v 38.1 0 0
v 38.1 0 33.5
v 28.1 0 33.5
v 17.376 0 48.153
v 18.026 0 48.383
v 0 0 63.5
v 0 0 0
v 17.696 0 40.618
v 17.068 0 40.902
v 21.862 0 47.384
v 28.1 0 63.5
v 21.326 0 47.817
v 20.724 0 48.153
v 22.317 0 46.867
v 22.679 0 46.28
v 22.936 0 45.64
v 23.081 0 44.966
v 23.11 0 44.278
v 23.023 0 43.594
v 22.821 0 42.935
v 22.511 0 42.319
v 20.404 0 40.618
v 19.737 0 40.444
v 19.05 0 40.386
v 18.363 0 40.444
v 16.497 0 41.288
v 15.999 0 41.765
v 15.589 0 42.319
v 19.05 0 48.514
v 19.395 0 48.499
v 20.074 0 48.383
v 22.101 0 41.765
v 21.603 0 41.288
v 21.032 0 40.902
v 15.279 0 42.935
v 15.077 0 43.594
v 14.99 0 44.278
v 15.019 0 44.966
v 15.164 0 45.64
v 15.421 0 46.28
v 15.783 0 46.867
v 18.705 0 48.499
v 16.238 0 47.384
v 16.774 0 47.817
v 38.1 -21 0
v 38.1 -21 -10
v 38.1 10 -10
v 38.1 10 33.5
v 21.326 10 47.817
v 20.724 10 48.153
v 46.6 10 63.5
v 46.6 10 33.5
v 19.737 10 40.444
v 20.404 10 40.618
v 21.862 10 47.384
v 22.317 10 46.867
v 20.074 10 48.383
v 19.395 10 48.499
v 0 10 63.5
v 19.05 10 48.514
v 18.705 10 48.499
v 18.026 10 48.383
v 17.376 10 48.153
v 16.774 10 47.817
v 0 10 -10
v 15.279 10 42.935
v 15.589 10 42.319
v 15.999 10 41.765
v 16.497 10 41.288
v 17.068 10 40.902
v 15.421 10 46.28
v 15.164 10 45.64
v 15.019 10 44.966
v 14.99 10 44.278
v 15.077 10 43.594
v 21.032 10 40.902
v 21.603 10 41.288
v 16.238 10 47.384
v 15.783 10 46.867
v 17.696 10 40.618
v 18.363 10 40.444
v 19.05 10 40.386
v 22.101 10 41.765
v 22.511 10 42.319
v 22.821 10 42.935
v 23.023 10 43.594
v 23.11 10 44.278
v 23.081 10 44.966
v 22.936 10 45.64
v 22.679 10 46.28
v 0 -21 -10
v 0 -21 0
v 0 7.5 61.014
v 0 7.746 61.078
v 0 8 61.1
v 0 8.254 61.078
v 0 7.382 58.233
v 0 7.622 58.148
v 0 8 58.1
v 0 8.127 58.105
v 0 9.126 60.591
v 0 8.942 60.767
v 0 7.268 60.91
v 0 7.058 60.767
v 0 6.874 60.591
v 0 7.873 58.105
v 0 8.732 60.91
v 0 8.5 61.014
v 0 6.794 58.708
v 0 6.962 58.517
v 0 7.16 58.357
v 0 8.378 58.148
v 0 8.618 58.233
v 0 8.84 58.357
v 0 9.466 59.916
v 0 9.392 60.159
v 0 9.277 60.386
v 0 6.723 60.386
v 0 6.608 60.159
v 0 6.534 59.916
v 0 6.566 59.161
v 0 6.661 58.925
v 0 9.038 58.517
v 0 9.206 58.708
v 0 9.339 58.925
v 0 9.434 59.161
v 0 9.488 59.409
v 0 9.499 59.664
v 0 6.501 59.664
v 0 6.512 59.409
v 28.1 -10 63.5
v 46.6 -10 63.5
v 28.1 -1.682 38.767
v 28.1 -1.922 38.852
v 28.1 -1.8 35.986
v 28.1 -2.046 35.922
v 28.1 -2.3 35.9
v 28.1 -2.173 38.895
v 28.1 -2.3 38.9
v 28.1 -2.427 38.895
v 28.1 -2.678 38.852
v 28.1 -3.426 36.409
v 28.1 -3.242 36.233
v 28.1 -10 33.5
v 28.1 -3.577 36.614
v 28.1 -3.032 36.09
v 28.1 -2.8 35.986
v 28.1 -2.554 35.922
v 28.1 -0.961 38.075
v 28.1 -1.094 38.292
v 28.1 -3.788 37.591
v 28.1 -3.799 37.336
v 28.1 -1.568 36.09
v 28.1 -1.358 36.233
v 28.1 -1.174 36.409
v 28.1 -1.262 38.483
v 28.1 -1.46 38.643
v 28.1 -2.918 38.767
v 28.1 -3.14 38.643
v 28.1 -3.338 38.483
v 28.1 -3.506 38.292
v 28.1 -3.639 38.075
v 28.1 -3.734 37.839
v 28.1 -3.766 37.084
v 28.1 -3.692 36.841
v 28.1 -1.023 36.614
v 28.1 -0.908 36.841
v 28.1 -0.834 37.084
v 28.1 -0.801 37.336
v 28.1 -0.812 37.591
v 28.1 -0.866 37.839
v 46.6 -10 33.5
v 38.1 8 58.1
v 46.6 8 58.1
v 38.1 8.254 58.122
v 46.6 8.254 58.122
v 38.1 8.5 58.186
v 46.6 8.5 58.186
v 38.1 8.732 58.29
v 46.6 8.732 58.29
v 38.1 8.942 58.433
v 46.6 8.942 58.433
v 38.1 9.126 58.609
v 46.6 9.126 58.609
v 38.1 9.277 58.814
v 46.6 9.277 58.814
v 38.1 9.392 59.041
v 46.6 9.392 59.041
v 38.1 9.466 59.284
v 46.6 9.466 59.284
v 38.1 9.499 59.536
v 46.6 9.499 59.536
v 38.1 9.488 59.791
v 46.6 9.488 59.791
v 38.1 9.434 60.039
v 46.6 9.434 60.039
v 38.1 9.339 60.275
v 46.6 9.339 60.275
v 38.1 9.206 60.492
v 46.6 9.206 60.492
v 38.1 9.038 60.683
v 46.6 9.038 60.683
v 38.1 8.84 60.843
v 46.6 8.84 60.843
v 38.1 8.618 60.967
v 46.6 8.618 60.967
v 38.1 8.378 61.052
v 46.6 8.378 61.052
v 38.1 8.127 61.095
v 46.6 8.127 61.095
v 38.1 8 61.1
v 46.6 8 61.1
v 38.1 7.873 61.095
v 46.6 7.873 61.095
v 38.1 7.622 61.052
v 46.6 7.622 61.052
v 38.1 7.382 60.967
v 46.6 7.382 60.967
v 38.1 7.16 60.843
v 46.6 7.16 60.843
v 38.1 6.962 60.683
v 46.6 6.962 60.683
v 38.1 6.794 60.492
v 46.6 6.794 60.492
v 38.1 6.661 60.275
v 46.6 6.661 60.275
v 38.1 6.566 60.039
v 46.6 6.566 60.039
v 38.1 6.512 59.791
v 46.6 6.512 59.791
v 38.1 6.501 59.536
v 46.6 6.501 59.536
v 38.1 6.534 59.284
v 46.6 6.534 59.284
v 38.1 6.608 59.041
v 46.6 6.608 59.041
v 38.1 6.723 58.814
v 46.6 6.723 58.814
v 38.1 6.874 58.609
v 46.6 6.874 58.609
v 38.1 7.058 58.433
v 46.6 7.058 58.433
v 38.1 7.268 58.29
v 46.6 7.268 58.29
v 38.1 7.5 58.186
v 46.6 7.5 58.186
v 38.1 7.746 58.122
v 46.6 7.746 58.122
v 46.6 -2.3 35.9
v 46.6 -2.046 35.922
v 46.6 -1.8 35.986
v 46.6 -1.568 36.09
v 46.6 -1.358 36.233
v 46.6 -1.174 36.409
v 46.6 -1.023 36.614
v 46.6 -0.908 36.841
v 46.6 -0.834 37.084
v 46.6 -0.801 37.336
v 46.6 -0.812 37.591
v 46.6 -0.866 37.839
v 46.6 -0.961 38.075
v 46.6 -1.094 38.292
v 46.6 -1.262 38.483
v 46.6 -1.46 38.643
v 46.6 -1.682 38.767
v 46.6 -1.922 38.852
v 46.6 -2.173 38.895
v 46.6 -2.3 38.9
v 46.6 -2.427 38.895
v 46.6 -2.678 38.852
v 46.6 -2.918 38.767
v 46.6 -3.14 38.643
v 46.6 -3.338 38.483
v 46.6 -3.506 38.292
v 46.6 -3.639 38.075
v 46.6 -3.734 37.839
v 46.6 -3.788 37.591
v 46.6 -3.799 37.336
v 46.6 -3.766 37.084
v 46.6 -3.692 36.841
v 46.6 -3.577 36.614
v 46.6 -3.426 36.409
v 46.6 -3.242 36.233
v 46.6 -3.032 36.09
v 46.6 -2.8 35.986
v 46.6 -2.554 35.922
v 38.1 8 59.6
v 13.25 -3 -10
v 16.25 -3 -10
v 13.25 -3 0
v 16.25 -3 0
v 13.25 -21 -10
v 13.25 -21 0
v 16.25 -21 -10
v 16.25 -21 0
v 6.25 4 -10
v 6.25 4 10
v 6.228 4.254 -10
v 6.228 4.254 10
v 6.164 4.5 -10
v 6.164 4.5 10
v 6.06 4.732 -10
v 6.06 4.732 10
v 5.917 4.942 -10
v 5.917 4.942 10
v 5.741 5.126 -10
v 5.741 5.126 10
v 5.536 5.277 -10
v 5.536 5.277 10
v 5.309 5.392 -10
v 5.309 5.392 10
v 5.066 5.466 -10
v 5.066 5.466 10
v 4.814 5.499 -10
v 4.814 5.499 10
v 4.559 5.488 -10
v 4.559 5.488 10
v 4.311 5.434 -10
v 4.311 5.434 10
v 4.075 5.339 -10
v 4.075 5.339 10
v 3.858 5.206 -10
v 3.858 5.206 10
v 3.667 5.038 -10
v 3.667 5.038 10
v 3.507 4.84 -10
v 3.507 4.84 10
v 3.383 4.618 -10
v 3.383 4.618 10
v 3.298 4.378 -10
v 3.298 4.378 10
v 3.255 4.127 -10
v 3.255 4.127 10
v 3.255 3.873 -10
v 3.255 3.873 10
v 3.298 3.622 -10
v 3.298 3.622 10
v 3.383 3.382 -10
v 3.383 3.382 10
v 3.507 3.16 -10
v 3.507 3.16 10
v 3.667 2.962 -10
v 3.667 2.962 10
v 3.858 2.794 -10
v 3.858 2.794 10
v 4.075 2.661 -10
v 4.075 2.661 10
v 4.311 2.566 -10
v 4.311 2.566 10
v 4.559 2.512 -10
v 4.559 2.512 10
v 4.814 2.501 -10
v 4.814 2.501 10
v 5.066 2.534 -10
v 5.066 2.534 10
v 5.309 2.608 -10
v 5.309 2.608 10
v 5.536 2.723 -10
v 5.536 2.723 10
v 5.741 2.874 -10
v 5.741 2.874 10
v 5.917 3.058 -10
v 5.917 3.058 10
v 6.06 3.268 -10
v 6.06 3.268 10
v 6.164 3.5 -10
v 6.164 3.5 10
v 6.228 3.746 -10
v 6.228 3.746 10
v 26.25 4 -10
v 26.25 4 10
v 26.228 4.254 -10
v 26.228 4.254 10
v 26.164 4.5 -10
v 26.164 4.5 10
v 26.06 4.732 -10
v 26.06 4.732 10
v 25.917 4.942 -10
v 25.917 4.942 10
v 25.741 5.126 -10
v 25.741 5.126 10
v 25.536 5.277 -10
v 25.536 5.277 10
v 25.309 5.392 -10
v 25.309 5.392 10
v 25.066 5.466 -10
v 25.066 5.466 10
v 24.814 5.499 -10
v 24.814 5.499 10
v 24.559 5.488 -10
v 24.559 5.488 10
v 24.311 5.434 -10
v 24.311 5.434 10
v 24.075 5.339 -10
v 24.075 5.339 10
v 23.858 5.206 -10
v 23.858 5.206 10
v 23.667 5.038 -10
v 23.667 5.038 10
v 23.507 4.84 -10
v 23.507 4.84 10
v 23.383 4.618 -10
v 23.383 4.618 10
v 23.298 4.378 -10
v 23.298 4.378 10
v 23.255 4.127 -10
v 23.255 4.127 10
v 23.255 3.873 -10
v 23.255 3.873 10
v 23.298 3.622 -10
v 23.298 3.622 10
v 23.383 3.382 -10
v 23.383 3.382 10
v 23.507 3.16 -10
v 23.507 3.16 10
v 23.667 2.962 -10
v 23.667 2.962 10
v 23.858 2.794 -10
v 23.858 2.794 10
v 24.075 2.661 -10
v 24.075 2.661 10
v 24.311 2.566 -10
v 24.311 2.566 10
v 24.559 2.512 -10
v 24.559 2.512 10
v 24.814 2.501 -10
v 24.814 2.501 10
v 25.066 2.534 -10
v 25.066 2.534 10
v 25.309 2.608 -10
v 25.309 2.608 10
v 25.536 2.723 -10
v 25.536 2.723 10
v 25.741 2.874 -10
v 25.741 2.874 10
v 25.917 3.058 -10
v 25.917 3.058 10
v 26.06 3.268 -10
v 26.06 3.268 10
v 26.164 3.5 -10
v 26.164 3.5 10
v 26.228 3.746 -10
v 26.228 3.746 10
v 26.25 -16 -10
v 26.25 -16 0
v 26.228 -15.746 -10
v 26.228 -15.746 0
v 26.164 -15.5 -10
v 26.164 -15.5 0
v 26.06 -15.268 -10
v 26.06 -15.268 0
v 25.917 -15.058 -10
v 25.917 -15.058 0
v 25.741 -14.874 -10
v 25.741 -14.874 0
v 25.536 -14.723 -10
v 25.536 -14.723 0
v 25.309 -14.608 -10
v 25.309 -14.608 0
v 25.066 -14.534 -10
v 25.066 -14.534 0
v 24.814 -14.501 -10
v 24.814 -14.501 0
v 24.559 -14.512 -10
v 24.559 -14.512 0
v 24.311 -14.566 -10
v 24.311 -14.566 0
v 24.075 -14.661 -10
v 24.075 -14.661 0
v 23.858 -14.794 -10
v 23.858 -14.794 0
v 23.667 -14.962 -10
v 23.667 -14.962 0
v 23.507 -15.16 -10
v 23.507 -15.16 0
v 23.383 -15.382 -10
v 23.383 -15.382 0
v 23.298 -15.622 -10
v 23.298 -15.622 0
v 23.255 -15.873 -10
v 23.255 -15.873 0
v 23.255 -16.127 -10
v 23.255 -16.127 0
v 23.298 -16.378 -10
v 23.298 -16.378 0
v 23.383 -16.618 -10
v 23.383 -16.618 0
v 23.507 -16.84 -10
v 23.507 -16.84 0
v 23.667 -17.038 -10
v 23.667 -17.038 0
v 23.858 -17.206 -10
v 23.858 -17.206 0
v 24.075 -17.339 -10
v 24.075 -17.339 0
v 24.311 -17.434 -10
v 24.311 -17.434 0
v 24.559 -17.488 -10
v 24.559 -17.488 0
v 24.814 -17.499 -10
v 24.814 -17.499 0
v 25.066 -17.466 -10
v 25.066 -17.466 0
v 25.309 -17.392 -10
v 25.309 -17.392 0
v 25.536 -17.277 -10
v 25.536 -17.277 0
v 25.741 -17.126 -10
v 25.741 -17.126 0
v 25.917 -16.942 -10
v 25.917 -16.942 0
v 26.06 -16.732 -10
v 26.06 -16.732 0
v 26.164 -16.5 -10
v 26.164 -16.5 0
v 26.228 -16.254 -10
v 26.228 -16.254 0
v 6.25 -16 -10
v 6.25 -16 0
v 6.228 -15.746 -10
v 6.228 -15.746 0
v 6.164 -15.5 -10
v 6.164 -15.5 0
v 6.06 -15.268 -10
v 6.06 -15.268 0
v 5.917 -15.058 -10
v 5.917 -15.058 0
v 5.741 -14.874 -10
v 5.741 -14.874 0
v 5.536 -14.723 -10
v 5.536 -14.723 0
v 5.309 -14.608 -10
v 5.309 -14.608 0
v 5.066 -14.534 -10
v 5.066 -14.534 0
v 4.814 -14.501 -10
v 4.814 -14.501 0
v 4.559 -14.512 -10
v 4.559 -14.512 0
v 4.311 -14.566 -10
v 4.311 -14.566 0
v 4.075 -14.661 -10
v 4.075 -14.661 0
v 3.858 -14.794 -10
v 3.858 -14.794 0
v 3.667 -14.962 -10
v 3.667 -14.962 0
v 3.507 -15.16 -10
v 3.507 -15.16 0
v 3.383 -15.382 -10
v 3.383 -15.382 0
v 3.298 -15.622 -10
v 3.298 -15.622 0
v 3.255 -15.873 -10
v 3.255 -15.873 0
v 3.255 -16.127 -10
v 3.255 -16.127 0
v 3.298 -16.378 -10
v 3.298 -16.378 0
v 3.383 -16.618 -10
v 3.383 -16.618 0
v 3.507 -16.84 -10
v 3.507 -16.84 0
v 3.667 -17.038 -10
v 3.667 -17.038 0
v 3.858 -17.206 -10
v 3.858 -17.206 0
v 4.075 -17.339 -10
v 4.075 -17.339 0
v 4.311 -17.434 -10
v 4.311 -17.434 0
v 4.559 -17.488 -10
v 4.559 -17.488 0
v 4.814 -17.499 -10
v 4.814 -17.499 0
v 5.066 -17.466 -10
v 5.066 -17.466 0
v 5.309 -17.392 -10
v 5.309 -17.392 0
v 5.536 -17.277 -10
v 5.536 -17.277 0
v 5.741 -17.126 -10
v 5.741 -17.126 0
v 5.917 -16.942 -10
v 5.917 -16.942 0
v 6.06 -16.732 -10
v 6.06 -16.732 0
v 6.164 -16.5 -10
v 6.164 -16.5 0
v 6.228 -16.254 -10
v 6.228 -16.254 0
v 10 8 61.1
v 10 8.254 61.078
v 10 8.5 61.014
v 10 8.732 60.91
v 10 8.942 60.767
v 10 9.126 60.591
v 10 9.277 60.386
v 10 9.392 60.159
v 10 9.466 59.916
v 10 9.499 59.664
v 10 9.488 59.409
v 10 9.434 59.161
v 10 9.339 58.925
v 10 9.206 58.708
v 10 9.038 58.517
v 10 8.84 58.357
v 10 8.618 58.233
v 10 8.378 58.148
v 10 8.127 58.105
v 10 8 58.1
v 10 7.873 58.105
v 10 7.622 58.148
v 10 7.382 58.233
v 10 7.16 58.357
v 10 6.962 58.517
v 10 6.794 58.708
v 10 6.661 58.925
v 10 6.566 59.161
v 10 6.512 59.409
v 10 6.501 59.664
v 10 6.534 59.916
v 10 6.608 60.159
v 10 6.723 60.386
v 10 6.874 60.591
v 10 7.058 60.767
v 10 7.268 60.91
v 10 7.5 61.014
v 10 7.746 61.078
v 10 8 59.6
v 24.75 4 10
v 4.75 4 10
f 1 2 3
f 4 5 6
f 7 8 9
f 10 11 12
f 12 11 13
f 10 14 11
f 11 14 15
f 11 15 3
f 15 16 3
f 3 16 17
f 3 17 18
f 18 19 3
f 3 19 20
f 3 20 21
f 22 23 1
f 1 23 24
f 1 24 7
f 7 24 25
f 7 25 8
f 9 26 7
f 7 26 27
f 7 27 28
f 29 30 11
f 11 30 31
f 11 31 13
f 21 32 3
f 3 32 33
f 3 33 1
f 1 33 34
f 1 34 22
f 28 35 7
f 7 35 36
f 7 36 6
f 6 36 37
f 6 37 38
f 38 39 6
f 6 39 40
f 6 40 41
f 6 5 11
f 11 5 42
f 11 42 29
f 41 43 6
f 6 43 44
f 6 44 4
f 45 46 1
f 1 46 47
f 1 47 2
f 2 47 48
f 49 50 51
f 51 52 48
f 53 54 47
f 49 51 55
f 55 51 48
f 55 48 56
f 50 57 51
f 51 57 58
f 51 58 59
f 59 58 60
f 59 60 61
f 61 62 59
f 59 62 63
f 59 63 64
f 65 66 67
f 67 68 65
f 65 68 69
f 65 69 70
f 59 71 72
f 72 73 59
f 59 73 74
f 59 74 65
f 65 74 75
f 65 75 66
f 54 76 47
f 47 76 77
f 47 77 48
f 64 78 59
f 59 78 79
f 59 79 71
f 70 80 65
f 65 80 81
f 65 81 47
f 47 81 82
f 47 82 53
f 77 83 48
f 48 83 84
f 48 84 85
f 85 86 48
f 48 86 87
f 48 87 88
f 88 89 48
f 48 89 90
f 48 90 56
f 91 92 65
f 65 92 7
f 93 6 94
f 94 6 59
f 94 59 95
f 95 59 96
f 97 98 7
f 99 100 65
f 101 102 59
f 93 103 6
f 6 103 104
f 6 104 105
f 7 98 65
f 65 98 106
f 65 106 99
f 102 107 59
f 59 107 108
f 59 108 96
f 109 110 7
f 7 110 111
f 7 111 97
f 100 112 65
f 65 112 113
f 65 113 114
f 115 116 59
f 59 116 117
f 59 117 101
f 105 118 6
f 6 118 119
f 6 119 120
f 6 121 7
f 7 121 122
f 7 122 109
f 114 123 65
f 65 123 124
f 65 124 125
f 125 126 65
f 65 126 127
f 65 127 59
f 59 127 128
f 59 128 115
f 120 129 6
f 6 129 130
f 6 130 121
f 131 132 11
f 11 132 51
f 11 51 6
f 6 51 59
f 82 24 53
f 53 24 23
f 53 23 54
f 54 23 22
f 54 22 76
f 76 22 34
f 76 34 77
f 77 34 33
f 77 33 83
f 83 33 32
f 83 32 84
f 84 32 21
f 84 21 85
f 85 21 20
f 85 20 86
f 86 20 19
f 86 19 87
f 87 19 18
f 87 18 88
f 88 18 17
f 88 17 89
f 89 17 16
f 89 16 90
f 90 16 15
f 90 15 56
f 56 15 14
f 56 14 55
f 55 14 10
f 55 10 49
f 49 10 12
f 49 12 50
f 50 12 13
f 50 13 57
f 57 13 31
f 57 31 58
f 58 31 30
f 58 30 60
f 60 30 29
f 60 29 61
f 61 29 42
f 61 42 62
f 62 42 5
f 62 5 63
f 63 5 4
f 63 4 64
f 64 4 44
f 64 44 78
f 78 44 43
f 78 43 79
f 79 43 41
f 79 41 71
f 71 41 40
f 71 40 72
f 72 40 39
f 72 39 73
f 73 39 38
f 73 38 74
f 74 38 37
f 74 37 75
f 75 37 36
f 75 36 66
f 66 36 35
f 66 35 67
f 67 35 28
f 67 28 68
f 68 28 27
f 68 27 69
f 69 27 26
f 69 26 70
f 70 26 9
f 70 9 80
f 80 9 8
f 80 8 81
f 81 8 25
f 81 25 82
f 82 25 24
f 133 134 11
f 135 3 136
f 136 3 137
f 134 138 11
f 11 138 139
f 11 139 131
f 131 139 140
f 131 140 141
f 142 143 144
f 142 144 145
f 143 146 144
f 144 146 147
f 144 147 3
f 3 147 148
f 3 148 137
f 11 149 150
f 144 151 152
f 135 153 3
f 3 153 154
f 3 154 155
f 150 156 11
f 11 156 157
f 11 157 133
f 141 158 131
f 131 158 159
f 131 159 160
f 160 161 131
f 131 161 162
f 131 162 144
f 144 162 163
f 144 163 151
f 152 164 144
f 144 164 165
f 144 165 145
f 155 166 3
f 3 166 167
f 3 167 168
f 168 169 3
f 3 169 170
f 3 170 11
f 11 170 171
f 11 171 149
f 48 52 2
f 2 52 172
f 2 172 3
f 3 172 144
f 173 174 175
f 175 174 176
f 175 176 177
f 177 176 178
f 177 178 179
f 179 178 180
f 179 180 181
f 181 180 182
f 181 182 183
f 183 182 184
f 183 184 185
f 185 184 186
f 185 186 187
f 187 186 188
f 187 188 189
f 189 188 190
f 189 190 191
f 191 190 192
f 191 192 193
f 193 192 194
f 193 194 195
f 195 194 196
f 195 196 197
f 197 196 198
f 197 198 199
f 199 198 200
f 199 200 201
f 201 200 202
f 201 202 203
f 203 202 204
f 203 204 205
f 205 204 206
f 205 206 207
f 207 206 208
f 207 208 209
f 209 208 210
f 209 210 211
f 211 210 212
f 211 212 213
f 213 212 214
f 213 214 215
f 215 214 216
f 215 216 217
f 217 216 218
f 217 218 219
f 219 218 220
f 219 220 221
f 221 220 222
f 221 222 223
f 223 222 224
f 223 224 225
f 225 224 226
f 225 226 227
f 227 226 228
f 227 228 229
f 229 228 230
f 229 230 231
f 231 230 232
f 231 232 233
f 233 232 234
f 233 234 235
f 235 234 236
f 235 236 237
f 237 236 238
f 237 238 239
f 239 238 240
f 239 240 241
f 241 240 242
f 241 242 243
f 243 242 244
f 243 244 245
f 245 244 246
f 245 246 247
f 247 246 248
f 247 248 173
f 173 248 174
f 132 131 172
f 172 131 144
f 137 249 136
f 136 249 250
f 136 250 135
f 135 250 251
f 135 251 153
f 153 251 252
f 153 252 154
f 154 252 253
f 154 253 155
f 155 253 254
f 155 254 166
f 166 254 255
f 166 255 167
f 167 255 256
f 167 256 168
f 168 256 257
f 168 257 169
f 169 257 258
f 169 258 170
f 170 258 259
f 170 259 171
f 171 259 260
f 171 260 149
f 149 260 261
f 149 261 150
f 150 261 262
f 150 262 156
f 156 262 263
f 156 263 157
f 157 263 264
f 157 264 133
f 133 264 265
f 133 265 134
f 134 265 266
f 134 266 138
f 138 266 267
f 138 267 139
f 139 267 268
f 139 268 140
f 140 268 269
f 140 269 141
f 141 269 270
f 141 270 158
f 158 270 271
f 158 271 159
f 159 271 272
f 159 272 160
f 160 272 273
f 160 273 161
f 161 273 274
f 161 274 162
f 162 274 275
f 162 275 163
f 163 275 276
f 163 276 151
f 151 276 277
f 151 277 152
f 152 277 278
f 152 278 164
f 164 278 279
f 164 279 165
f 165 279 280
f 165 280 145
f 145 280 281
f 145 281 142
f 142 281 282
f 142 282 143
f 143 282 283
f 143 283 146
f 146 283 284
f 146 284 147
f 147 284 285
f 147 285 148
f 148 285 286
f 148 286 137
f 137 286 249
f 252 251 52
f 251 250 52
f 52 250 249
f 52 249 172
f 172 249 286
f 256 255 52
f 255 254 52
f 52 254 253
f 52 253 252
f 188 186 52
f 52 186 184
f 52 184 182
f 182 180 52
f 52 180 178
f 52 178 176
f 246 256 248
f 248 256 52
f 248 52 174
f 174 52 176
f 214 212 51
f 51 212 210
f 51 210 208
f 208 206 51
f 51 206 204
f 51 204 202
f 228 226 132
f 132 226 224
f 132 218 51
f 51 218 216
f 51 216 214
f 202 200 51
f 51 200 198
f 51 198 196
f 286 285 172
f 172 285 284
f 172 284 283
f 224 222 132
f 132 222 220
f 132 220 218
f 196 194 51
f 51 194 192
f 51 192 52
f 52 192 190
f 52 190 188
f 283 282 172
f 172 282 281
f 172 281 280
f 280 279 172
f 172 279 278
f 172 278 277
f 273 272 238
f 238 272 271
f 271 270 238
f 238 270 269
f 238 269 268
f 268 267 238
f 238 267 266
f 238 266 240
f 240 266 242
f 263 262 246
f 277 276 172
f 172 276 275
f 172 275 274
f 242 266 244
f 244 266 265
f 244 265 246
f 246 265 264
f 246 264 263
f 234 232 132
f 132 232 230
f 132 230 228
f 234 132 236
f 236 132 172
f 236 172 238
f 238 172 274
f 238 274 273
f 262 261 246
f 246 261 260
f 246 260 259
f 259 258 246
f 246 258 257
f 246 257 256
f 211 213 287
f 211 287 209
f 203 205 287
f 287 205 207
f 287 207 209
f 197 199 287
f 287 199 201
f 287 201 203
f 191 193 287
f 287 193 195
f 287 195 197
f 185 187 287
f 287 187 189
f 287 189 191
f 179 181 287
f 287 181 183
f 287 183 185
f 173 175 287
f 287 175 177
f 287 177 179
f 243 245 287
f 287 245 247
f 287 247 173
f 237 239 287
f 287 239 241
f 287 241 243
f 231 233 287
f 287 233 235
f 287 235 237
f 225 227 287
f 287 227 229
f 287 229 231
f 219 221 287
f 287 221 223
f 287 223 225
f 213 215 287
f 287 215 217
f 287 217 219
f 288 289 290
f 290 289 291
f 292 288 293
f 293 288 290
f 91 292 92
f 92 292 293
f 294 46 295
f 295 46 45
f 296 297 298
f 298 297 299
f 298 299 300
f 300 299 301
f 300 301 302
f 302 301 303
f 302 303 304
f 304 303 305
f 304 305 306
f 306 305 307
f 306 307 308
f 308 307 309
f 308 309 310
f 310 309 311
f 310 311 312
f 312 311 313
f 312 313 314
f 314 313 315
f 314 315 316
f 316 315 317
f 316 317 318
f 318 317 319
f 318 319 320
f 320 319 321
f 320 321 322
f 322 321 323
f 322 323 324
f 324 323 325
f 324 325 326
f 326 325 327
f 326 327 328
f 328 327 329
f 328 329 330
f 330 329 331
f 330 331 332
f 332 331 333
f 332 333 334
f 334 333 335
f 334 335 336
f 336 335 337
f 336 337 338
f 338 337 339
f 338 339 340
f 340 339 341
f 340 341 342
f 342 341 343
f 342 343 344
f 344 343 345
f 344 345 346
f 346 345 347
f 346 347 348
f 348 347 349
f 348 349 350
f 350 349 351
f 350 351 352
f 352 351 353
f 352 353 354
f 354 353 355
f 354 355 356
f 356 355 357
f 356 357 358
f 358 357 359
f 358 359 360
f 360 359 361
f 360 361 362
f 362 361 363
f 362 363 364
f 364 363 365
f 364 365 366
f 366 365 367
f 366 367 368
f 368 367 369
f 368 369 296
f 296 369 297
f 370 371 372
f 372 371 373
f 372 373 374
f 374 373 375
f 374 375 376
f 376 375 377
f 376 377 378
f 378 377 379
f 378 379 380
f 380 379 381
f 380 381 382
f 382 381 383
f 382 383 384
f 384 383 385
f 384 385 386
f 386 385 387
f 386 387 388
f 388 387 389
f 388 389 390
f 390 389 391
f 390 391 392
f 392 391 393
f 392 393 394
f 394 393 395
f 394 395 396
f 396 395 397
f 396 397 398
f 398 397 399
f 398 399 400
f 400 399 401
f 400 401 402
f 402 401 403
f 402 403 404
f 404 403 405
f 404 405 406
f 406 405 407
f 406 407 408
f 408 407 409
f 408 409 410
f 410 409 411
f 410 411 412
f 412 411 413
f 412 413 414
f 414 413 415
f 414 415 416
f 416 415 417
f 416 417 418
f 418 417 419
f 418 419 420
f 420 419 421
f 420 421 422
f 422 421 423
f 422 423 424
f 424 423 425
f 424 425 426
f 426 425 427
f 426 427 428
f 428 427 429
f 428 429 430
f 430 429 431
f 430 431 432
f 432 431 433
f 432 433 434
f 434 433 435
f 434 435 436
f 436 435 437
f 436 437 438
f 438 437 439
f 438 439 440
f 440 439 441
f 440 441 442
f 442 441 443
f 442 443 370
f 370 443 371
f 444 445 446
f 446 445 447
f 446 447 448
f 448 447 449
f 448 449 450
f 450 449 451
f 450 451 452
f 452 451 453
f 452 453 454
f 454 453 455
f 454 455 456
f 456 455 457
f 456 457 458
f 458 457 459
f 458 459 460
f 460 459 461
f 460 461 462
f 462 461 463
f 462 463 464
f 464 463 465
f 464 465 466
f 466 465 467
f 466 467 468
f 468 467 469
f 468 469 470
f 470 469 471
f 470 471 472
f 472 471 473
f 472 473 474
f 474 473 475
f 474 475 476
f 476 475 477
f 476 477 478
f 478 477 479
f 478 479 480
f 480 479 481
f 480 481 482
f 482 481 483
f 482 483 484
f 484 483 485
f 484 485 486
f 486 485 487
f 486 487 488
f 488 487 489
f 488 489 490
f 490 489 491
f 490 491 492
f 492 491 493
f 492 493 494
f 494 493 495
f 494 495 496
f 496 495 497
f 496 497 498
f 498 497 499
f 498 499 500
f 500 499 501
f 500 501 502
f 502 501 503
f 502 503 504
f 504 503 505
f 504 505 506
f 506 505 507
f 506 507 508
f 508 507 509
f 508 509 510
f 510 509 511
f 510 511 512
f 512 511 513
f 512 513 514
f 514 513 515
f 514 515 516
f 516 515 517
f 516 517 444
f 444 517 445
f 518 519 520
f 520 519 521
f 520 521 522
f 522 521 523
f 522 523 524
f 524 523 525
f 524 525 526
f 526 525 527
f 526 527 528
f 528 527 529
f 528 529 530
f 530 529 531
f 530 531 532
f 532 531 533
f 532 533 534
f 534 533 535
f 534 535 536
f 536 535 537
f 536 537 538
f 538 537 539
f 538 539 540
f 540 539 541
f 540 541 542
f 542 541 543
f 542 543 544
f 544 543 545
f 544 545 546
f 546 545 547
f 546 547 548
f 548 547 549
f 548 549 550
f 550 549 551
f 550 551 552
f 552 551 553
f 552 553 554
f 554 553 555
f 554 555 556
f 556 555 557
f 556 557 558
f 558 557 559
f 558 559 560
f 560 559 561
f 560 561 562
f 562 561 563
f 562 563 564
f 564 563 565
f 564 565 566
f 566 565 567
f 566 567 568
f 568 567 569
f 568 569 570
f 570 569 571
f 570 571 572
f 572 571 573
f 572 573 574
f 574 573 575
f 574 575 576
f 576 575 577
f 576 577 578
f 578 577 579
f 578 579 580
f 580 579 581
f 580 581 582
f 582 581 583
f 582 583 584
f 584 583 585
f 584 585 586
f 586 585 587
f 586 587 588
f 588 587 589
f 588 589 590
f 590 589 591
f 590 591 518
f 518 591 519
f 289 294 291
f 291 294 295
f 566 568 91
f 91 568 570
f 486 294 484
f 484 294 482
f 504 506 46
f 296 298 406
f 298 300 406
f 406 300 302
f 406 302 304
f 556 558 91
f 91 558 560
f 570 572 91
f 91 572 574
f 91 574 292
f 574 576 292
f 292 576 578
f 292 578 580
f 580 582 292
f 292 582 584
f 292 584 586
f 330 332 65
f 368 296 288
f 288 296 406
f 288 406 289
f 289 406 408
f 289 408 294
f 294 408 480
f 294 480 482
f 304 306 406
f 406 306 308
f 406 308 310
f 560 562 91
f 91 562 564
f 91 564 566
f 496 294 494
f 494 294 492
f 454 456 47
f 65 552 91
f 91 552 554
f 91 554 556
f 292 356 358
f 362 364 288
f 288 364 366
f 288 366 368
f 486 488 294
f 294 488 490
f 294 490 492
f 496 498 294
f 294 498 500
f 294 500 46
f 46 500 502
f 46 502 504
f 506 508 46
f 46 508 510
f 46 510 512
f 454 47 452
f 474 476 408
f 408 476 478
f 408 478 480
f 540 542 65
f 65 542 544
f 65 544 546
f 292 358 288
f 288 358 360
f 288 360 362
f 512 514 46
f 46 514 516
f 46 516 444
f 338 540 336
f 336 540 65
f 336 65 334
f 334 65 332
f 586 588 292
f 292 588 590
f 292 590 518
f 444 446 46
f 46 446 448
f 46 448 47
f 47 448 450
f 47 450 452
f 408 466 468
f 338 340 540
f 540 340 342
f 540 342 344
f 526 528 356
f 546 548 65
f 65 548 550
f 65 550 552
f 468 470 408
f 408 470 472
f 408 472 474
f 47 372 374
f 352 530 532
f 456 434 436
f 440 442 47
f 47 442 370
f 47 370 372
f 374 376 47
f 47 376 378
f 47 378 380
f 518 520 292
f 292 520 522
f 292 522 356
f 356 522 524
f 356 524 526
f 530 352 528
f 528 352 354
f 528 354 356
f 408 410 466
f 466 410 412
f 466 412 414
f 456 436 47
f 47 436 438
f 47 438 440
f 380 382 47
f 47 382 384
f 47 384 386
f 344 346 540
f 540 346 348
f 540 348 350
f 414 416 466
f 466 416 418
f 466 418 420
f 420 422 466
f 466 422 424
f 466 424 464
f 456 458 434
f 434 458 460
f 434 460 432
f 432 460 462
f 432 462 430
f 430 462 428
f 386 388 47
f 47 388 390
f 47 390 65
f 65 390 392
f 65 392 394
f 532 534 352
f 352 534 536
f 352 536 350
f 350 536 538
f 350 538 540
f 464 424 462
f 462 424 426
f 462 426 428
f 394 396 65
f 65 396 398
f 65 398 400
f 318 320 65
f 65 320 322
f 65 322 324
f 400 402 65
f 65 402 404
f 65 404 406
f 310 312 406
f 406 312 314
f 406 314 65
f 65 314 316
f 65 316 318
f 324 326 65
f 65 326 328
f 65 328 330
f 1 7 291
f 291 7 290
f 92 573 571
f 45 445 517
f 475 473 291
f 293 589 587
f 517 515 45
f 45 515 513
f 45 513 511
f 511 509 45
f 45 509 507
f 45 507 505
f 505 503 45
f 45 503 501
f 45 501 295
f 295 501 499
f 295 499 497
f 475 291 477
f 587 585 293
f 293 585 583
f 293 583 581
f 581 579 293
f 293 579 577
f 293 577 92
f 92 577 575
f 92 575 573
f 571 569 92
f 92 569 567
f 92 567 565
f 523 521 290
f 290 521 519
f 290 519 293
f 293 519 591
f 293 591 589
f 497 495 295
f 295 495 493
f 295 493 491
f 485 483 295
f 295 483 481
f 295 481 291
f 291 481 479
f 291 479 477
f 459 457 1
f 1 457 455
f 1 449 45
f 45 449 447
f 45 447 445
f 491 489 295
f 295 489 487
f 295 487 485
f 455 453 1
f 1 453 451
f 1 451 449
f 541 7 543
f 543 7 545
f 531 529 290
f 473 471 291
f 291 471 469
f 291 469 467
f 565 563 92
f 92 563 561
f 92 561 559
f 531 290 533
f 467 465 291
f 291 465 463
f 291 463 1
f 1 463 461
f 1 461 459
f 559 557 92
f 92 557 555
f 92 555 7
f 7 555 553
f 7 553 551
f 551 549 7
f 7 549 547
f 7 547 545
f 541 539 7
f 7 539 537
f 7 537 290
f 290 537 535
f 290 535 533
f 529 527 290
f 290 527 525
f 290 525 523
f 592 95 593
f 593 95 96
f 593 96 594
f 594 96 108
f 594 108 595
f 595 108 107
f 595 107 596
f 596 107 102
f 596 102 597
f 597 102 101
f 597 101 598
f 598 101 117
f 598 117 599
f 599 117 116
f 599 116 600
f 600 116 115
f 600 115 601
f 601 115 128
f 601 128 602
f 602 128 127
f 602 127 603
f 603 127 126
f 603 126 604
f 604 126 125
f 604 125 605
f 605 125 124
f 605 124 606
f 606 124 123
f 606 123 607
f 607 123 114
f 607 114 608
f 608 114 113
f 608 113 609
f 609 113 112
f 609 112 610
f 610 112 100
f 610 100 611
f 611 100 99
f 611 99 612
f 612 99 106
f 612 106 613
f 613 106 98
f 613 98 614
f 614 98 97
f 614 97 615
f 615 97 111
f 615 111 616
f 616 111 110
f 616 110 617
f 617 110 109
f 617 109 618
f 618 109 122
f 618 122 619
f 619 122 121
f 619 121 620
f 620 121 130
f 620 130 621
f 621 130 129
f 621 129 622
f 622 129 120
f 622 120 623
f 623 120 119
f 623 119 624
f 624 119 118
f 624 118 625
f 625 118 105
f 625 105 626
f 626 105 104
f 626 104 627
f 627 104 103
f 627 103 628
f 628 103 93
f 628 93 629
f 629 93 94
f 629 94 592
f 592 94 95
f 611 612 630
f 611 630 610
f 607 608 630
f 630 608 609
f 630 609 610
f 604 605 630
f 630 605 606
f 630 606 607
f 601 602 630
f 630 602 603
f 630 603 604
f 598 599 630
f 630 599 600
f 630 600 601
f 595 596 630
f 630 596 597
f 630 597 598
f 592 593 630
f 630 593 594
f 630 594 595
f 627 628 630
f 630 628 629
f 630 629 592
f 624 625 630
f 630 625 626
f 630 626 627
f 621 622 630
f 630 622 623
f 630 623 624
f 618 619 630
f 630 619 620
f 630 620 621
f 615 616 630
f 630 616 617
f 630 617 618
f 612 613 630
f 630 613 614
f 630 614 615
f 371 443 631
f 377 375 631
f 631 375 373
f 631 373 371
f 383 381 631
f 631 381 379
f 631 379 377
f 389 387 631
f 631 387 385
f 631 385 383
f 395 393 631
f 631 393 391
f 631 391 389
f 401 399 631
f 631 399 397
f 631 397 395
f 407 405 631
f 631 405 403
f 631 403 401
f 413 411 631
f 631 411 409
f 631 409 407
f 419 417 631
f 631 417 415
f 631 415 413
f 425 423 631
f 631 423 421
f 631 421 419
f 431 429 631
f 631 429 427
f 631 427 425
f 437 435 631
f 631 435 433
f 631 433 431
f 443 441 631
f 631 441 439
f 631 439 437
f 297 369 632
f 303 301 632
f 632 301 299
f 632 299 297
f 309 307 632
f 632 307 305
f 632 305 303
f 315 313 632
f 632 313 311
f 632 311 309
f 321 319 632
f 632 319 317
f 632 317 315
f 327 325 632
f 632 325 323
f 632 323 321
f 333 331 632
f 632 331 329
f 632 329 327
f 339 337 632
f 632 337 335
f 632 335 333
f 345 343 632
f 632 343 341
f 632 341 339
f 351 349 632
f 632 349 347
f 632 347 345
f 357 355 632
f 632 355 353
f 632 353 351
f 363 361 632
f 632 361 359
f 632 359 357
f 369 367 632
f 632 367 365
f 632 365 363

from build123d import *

# Parameters (mm, degrees)
SKETCH1_W                = 38.1
SKETCH1_H                = 63.5
SKETCH1_R                = 4.064
BOSS_EXTRUDE1_DEPTH      = 10
BOSS_EXTRUDE2_DEPTH      = 8.5
BOSS_EXTRUDE2_DEPTH_BACK = 10
BOSS_EXTRUDE2_START      = 38.1
SKETCH2_R                = 1.5
SKETCH3_R                = 1.5
BOSS_EXTRUDE3_DEPTH      = 10
SKETCH2_2_R              = 1.5
CUT_EXTRUDE1_DEPTH       = 10
CUT_EXTRUDE2_START       = 10
SKETCH3_2_R              = 1.5
CUT_EXTRUDE2_DEPTH       = 10


with BuildPart() as part:
    # Sketch1 → Boss-Extrude1 (new body)
    with BuildSketch(Plane(origin=(0, 0, 0), x_dir=(1, 0, 0), z_dir=(0, 1, 0))):
        with Locations((19.05, -31.75)):
            Rectangle(SKETCH1_W, SKETCH1_H)
        with Locations(Location((19.05, -44.45, 0), (0, 0, 270))):
            Circle(SKETCH1_R, mode=Mode.SUBTRACT)
    extrude(amount=BOSS_EXTRUDE1_DEPTH)

    # Sketch2 → Boss-Extrude2 (add, two sides: drawn at the far end of the back side and taken through both)
    with BuildSketch(Plane(origin=(0, 0, 0), x_dir=(0, 0, -1), z_dir=(1, 0, 0)).offset(BOSS_EXTRUDE2_START - BOSS_EXTRUDE2_DEPTH_BACK)):
        Polygon((-33.5, 0), (-33.5, -10), (-63.5, -10), (-63.5, 0), (-63.5, 10), (-33.5, 10), align=None)
        with Locations(Location((-59.6, 8, 0), (0, 0, 180))):
            Circle(SKETCH2_R, mode=Mode.SUBTRACT)
        with Locations(Location((-37.4, -2.3, 0), (0, 0, 180))):
            Circle(SKETCH2_R, mode=Mode.SUBTRACT)
    extrude(amount=BOSS_EXTRUDE2_DEPTH + BOSS_EXTRUDE2_DEPTH_BACK)

    # Sketch3 → Boss-Extrude3 (add)
    with BuildSketch(Plane.XY):
        Polygon((13.25, -21), (13.25, -3), (16.25, -3), (16.25, -21), (38.1, -21), (38.1, 10), (0, 10), (0, -21), align=None)
        with Locations((4.75, -16)):
            Circle(SKETCH3_R, mode=Mode.SUBTRACT)
        with Locations((24.75, -16)):
            Circle(SKETCH3_R, mode=Mode.SUBTRACT)
        with Locations((4.75, 4)):
            Circle(SKETCH3_R, mode=Mode.SUBTRACT)
        with Locations((24.75, 4)):
            Circle(SKETCH3_R, mode=Mode.SUBTRACT)
    extrude(amount=-BOSS_EXTRUDE3_DEPTH)

    # Sketch2<2> → Cut-Extrude1 (cut)
    with BuildSketch(Plane(origin=(0, 0, 0), x_dir=(0, 0, -1), z_dir=(1, 0, 0))):
        with Locations(Location((-59.6, 8, 0), (0, 0, 180))):
            Circle(SKETCH2_2_R)
    extrude(amount=CUT_EXTRUDE1_DEPTH, mode=Mode.SUBTRACT)

    # Sketch3<2> → Cut-Extrude2 (cut)
    with BuildSketch(Plane.XY.offset(CUT_EXTRUDE2_START)):
        with Locations((24.75, 4)):
            Circle(SKETCH3_2_R)
        with Locations((4.75, 4)):
            Circle(SKETCH3_2_R)
    extrude(amount=-CUT_EXTRUDE2_DEPTH, mode=Mode.SUBTRACT)


solid = part.part
